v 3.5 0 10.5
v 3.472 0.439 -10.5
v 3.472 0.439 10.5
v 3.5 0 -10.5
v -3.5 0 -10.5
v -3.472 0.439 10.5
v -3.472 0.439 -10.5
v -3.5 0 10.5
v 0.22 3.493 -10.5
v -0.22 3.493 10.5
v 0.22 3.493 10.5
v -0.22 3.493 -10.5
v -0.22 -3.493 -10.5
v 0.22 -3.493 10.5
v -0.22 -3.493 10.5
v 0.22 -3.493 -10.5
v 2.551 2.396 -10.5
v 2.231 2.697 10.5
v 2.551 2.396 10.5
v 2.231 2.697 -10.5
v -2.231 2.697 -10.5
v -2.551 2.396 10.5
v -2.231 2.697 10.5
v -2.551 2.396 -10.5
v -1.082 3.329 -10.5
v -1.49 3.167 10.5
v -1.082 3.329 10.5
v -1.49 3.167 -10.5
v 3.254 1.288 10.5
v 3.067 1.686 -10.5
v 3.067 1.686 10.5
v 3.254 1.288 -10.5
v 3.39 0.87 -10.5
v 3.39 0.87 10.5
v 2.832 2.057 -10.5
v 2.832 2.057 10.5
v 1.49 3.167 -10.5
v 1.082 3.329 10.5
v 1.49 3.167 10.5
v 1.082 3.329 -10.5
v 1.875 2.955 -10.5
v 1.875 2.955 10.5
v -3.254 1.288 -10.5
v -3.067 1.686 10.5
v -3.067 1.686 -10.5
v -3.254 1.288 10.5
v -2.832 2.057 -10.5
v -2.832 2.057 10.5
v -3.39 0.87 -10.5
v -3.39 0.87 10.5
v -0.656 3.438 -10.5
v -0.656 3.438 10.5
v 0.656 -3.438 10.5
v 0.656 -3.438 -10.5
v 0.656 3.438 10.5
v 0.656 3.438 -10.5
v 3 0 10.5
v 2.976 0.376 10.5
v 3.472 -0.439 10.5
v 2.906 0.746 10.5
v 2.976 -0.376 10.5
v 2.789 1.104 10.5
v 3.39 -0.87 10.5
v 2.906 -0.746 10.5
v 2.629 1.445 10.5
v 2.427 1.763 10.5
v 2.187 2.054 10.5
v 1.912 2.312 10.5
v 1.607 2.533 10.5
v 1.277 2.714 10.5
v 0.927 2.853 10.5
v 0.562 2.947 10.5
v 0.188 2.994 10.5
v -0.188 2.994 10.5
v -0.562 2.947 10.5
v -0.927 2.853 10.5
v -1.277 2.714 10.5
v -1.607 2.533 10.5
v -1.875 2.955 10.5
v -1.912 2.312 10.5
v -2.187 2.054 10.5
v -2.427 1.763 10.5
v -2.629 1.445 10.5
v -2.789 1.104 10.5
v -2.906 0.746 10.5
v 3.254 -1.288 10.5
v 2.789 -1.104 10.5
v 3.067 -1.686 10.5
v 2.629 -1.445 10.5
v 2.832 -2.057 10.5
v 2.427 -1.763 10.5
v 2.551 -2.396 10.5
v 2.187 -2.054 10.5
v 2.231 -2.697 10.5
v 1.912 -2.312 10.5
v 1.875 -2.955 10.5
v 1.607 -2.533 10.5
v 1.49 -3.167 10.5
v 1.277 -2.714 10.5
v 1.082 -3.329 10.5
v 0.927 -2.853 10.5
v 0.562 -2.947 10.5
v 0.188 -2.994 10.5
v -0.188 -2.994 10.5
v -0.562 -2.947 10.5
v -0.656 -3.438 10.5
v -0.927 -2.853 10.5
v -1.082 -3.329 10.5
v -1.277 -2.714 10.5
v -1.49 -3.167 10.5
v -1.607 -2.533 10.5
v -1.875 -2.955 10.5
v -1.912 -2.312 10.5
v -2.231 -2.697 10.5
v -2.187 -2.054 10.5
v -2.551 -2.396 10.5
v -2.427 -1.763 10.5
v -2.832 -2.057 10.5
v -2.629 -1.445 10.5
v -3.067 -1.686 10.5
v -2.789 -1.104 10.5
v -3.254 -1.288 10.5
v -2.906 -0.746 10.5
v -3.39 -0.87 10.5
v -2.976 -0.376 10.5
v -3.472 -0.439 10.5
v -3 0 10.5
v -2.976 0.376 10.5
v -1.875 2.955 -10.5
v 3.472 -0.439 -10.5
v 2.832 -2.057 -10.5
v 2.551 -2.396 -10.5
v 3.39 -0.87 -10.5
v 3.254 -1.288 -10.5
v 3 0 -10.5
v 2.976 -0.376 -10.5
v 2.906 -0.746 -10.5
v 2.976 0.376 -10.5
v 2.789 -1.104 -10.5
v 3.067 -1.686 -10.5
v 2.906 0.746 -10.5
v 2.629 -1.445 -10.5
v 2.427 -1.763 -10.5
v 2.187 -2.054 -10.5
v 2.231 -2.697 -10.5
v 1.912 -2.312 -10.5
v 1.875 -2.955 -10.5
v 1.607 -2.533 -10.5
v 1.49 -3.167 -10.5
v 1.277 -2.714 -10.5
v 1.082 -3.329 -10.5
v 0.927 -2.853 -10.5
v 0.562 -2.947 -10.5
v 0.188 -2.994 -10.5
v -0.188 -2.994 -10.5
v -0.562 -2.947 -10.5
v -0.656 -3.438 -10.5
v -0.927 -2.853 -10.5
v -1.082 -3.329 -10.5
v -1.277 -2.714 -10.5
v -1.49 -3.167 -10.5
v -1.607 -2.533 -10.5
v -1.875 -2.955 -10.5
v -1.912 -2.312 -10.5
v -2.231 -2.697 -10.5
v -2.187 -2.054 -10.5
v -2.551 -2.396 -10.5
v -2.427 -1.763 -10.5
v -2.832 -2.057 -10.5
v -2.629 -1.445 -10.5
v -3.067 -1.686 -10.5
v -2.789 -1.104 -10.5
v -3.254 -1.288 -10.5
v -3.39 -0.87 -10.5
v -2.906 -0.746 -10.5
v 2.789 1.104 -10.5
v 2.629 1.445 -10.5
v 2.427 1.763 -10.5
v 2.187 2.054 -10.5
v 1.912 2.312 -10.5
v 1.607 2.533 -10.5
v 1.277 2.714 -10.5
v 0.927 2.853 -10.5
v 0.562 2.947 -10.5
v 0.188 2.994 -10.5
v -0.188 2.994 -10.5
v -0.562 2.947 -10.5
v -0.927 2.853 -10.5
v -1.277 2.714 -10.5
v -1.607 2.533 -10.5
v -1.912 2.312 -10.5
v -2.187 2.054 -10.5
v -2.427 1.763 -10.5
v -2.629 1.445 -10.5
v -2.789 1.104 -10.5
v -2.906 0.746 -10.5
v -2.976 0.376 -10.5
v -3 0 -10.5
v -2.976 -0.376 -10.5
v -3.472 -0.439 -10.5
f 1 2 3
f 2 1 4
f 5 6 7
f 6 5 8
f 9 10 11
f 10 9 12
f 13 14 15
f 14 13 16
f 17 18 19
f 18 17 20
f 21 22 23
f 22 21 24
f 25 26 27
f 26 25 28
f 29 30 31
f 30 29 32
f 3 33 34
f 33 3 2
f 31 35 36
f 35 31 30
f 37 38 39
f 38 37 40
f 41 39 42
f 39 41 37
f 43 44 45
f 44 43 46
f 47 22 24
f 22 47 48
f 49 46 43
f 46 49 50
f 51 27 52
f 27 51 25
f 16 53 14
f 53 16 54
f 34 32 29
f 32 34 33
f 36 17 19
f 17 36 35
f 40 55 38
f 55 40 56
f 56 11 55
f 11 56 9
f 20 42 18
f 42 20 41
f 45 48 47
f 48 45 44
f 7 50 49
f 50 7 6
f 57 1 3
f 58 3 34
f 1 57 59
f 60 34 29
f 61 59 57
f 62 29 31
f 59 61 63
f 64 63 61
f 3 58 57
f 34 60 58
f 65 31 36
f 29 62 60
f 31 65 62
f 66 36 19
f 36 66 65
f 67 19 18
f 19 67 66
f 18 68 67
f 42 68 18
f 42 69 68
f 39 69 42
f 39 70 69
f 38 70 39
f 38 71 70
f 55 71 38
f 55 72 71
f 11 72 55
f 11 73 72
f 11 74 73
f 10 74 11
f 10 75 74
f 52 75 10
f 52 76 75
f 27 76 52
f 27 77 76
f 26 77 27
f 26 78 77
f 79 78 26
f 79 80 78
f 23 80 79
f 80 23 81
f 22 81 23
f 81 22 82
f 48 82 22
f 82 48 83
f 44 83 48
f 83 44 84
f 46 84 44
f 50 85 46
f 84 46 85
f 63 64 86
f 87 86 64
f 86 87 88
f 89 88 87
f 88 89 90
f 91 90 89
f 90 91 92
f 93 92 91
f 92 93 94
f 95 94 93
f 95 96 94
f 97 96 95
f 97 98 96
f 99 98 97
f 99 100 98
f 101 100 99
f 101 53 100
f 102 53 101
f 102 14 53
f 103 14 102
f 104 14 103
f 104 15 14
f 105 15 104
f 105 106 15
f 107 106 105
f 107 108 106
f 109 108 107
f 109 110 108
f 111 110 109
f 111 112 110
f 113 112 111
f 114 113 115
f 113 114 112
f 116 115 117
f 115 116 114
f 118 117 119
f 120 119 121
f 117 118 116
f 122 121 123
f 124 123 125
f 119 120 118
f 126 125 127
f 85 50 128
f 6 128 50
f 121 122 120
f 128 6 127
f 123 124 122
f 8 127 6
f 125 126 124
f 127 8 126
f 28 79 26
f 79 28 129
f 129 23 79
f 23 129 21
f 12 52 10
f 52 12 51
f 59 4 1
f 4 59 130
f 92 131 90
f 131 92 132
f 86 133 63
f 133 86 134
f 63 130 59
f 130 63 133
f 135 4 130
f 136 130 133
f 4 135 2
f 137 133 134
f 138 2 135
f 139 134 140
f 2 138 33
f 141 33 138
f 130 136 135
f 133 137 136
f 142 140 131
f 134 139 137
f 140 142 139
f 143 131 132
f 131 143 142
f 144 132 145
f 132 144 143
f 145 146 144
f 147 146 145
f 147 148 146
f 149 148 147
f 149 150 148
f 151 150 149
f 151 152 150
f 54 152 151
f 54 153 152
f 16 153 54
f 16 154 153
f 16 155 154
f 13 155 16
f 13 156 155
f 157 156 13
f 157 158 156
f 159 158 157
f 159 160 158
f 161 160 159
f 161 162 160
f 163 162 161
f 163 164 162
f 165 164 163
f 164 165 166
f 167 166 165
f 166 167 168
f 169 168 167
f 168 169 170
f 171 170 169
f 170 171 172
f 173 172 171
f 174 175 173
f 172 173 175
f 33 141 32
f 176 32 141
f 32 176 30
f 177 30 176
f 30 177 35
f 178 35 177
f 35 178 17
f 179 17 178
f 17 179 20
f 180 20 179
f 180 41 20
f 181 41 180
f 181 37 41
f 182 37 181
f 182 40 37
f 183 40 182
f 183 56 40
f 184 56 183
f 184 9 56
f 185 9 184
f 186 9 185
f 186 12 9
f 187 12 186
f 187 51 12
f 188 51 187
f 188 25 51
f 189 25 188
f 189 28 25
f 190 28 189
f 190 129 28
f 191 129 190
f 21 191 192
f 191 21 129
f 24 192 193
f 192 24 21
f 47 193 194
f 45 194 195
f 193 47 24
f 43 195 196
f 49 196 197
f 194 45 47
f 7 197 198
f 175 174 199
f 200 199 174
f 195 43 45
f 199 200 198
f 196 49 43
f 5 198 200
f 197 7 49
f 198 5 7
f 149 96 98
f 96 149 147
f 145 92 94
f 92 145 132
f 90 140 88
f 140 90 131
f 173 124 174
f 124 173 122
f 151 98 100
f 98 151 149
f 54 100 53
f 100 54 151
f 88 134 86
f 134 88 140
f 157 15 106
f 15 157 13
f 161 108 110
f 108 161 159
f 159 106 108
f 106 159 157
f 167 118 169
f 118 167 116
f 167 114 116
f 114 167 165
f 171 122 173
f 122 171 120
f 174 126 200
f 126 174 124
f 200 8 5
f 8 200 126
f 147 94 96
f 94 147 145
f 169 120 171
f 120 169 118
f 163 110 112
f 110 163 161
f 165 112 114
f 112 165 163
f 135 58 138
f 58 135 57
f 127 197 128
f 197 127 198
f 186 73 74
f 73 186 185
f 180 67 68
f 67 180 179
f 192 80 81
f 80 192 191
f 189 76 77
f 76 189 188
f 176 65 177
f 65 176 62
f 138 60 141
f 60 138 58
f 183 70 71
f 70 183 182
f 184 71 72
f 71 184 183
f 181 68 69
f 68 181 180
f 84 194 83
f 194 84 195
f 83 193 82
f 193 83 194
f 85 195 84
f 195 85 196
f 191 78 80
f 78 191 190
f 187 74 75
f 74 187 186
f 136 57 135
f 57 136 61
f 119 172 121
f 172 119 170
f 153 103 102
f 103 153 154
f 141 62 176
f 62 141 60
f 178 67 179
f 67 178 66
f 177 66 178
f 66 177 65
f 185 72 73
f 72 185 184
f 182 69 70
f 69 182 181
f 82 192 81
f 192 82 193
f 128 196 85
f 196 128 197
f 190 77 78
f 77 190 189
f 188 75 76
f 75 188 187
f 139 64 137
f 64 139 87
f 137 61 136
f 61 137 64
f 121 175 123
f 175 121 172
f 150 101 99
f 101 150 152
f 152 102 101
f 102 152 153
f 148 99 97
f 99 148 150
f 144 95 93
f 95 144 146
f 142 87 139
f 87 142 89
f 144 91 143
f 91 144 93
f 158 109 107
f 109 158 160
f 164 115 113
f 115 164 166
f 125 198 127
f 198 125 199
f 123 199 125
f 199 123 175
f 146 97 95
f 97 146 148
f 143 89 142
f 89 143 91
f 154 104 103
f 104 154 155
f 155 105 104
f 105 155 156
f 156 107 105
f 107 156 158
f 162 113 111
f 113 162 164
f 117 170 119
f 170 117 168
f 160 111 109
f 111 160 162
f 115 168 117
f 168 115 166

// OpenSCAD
$fn = 50;


difference() {
	union() {
		translate(v = [0, 0, -10.5000000000]) {
			cylinder(h = 21, r = 3.5000000000);
		}
	}
	union() {
		translate(v = [0, 0, -100.0000000000]) {
			cylinder(h = 200, r = 3);
		}
	}
}
